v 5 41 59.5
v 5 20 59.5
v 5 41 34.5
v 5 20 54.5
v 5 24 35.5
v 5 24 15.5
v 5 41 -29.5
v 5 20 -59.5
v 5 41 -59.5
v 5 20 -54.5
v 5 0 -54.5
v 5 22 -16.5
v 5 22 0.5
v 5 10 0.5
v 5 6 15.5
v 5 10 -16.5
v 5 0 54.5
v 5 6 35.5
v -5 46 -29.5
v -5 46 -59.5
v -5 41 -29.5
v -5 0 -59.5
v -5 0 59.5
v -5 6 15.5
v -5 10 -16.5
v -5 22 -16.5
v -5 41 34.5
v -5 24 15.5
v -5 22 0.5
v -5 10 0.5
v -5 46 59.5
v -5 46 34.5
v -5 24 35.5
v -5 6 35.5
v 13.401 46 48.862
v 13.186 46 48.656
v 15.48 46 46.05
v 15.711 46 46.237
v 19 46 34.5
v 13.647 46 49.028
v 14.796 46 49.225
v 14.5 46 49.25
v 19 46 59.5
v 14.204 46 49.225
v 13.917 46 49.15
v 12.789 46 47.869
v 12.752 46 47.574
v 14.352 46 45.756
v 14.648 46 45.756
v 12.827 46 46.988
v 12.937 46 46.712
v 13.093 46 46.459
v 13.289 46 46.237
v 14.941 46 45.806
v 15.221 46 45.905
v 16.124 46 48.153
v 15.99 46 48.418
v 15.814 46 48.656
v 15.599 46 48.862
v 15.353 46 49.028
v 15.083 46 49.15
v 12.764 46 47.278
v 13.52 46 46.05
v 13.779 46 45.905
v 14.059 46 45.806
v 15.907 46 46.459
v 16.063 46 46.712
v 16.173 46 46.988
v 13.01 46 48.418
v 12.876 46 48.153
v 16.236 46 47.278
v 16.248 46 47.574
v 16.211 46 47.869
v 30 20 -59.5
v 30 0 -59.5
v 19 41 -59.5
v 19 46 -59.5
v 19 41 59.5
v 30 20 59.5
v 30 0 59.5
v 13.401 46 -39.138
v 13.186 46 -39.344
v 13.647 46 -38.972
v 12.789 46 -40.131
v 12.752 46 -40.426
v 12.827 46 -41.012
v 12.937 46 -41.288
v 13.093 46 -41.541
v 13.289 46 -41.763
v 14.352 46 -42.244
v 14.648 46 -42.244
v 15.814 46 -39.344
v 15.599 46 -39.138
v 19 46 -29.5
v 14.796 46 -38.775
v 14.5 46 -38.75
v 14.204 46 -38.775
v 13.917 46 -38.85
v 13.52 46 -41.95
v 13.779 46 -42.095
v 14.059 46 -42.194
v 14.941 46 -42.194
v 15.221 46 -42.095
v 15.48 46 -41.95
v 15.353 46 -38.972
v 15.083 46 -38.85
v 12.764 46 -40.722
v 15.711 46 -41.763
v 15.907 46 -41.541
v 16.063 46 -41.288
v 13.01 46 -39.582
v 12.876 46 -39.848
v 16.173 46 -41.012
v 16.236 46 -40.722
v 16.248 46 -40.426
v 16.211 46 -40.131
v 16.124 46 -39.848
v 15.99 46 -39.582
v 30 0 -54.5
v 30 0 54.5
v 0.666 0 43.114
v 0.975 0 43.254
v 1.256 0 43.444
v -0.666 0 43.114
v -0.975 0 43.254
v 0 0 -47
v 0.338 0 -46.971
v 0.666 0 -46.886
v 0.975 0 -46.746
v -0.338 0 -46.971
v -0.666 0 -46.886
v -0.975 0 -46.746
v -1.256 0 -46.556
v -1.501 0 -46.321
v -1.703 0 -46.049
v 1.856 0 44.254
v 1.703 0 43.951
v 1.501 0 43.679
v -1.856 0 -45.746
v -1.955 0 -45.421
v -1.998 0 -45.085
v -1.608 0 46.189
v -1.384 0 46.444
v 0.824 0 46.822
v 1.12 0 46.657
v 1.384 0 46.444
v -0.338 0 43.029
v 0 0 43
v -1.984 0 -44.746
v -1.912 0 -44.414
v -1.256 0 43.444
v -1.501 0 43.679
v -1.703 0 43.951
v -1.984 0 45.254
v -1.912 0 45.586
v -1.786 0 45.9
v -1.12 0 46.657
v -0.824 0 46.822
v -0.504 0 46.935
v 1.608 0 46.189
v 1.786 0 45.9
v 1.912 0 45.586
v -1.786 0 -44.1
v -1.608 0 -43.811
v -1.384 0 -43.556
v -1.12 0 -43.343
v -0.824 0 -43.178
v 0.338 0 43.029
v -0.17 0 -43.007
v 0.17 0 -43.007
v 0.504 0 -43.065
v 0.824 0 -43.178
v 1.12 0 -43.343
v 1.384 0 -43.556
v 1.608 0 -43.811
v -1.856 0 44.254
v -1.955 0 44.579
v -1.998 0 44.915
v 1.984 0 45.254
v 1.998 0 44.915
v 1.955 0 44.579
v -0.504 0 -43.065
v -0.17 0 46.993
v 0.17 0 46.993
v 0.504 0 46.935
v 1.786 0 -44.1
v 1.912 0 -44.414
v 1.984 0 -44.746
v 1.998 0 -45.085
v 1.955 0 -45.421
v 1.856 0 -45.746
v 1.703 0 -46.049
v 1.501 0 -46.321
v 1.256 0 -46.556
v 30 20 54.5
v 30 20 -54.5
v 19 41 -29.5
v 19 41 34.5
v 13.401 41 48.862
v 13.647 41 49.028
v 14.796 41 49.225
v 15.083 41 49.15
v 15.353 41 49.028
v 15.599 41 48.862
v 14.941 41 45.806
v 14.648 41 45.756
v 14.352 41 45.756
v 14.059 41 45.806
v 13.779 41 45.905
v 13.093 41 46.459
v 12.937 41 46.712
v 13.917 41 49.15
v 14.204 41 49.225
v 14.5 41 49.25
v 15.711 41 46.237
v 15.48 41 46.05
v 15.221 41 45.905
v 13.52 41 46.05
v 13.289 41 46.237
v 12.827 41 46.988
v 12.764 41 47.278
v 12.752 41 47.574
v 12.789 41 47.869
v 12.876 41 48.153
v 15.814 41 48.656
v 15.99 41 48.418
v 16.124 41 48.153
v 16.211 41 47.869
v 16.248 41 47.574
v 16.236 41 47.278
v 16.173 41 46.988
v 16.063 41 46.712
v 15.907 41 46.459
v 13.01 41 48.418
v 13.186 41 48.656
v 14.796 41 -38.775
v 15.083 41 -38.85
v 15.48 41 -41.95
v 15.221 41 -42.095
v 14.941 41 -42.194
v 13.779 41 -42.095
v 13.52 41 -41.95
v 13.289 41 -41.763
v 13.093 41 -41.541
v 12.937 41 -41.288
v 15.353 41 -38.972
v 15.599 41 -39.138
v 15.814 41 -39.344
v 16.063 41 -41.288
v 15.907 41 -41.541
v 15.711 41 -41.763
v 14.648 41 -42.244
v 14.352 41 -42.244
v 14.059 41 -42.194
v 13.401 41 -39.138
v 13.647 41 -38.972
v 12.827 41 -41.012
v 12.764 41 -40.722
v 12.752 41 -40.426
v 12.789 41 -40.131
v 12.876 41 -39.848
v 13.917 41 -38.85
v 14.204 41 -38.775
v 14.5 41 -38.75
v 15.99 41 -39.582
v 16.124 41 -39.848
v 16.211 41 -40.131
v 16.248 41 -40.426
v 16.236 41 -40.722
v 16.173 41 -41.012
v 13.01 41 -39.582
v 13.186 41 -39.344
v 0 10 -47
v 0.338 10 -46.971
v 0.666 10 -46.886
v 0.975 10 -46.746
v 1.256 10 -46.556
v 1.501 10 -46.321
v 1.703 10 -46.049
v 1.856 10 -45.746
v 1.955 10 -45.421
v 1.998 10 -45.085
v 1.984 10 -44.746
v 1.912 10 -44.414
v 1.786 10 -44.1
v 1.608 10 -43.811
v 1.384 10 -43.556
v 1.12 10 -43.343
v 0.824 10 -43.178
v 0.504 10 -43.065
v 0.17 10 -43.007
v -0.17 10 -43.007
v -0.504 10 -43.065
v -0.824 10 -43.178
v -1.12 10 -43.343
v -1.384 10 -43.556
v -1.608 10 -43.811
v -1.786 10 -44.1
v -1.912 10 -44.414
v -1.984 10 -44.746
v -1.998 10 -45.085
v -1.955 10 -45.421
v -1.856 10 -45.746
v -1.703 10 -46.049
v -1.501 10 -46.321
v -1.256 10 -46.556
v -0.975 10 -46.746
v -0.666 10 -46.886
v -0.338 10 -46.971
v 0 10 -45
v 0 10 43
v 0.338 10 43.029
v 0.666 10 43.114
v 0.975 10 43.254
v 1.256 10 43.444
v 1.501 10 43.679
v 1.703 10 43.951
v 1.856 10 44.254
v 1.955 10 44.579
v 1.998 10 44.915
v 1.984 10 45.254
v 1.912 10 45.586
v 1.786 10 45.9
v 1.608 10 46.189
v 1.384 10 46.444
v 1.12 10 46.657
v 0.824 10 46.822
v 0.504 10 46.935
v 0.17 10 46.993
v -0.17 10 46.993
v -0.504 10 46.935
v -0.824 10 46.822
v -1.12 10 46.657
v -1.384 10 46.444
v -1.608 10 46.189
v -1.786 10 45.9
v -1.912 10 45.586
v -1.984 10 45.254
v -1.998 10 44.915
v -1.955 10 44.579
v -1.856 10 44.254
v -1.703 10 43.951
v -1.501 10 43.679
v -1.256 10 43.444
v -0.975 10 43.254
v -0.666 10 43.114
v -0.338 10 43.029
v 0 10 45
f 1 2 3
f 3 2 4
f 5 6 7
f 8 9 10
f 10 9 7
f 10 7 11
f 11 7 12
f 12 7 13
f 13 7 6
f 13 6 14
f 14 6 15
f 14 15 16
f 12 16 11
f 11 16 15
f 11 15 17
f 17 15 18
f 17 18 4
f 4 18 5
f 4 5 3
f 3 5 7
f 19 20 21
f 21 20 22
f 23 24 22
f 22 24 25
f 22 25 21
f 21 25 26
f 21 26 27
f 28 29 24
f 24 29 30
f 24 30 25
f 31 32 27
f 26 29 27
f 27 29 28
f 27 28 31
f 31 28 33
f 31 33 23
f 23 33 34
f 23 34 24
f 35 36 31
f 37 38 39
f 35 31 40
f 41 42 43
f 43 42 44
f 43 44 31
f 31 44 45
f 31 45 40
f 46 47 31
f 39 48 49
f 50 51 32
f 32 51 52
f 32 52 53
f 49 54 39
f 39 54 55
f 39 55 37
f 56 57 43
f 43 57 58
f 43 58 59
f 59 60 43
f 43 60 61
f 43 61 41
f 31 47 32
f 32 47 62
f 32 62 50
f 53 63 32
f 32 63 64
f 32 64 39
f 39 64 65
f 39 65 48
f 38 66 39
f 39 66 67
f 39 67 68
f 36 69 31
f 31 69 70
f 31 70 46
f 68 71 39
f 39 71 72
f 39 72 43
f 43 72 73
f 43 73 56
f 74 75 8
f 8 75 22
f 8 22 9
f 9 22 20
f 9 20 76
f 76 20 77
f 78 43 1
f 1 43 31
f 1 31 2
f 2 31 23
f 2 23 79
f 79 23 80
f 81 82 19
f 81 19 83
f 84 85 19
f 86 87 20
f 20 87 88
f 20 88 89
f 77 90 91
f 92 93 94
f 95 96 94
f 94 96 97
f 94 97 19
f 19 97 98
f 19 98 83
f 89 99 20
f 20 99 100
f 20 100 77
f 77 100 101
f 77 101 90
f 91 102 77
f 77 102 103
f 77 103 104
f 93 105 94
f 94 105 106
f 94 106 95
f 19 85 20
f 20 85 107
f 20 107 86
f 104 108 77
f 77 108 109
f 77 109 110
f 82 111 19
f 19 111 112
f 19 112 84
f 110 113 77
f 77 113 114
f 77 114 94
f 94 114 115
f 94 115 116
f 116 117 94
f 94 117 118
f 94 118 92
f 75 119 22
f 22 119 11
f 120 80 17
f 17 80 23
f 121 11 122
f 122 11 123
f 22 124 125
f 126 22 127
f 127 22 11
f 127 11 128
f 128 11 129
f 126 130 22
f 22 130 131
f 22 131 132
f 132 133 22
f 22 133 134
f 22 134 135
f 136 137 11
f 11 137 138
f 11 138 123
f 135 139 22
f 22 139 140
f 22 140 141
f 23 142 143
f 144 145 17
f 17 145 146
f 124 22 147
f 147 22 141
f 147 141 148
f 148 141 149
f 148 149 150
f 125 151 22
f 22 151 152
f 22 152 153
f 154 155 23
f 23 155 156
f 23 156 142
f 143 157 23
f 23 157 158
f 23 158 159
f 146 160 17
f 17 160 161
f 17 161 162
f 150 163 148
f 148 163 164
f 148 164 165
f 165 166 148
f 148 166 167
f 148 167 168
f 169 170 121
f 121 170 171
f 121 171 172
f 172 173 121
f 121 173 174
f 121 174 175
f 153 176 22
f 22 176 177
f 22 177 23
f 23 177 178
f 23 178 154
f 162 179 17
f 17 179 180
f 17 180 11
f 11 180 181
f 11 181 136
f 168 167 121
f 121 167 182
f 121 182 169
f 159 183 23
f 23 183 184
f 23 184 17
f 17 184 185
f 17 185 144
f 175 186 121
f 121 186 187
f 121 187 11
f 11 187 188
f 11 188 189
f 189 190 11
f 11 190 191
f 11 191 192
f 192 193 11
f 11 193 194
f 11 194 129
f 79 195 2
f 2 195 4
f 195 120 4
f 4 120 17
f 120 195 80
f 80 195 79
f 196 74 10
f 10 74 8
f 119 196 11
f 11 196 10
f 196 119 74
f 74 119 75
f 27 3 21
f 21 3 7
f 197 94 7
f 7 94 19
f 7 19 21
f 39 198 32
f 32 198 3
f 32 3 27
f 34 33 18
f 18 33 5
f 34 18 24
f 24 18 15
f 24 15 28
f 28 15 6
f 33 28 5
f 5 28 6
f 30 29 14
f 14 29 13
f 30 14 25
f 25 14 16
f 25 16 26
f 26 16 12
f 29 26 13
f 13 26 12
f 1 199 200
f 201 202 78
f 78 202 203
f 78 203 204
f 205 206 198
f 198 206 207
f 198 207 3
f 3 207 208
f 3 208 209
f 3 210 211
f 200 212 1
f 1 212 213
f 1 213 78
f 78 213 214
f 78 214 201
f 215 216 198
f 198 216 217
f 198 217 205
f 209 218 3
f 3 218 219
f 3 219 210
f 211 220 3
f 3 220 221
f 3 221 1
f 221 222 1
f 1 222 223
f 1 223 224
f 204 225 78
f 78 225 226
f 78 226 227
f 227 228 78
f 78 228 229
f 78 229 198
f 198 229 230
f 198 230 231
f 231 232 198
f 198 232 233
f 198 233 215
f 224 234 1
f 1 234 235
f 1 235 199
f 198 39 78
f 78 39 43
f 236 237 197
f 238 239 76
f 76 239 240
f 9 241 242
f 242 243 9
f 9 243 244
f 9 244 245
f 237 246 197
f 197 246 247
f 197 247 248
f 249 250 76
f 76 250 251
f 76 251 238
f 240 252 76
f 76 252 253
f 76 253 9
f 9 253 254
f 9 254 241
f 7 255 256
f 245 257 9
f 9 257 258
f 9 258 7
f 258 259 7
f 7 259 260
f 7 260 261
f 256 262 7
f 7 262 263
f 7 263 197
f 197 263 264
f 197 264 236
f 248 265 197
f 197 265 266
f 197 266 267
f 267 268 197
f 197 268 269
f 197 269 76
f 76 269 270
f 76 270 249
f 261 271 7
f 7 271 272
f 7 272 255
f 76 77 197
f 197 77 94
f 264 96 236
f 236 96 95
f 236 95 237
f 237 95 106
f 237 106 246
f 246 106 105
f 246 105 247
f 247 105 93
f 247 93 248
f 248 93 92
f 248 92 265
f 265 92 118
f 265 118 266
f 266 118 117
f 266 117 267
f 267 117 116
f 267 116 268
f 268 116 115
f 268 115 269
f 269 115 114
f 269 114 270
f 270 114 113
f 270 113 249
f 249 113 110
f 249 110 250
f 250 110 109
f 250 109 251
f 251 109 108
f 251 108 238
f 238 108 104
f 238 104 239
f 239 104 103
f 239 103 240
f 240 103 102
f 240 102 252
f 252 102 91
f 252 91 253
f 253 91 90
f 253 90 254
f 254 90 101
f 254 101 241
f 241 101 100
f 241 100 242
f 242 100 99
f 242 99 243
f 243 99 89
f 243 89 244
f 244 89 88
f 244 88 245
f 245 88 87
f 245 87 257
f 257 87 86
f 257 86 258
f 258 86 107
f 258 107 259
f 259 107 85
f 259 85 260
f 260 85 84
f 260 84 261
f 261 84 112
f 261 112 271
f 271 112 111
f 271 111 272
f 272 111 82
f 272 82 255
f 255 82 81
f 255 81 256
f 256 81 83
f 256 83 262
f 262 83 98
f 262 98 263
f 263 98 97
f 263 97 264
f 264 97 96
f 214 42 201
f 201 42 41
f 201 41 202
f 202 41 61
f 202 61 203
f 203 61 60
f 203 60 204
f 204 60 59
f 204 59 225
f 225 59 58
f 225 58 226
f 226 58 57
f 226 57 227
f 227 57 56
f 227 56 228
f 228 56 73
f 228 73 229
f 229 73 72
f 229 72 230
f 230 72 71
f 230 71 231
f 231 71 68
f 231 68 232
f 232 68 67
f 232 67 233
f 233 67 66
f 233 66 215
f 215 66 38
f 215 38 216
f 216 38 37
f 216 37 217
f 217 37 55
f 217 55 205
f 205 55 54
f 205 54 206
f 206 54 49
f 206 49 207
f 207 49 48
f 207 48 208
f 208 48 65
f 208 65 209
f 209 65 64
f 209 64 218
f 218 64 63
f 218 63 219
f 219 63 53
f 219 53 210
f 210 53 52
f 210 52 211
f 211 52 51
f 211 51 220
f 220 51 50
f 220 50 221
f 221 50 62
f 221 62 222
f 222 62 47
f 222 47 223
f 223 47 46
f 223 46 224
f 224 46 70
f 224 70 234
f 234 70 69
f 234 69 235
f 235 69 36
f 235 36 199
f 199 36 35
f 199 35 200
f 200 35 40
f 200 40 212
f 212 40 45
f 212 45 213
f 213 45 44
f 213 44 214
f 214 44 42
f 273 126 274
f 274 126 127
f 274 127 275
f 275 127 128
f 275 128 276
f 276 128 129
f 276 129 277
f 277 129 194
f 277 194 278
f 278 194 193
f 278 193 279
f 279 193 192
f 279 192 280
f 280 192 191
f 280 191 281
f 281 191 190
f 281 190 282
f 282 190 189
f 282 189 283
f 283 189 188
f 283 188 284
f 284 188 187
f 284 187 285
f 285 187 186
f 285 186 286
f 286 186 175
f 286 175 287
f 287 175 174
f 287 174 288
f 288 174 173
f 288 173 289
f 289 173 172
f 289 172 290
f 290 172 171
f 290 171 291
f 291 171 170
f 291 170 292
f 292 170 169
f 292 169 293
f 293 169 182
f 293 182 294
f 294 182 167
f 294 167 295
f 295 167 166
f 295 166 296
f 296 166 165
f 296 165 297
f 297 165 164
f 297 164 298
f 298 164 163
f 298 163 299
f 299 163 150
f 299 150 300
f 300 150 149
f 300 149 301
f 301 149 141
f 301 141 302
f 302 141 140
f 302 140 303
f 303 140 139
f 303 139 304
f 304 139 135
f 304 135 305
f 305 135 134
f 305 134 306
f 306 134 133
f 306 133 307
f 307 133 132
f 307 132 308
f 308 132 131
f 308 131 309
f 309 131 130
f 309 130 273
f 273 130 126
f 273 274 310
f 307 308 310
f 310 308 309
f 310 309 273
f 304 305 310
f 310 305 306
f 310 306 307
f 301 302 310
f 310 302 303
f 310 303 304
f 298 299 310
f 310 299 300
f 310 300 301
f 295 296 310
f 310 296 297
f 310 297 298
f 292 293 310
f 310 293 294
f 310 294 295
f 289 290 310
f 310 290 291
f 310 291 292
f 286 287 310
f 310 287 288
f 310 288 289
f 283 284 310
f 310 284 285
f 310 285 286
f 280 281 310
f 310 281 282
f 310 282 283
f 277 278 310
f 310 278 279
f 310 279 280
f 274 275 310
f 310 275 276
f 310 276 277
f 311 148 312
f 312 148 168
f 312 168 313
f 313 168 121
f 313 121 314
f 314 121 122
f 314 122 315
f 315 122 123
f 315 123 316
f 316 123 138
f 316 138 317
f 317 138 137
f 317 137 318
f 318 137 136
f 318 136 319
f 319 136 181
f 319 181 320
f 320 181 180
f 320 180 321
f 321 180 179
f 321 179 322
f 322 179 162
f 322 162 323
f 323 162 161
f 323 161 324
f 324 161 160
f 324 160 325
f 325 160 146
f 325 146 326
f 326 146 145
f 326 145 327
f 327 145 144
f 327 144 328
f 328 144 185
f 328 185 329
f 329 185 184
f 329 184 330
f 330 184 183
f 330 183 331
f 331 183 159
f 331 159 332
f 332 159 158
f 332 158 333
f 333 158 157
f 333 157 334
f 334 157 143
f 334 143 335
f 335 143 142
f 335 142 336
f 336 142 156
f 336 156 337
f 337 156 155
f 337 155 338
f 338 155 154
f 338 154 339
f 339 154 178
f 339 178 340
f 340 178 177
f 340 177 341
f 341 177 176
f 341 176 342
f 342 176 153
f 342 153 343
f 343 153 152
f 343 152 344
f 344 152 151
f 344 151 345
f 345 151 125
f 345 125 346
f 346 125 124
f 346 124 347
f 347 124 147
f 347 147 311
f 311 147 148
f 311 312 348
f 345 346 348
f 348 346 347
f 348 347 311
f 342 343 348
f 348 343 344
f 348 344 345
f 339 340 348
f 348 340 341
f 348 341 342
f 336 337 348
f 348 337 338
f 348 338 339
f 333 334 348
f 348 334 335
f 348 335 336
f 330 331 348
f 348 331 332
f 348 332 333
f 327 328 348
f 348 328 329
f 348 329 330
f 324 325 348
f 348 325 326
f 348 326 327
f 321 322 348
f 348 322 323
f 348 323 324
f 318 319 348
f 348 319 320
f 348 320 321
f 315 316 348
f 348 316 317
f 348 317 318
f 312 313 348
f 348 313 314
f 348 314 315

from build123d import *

# Parameters (mm, degrees)
SKETCH1_W      = 10
SKETCH1_H      = 119
EXTRUDE1_DEPTH = 46
SKETCH2_W      = 5
SKETCH2_H      = 20
EXTRUDE2_DEPTH = 35
SKETCH3_W      = 64
SKETCH3_H      = 5
SKETCH3_W_2    = 17
SKETCH3_H_2    = 12
SKETCH3_W_3    = 20
SKETCH3_H_3    = 18
EXTRUDE3_DEPTH = 30
SKETCH4_W      = 25
SKETCH4_H      = 5
SKETCH4_W_2    = 30
EXTRUDE4_DEPTH = 14
SKETCH5_R      = 1.75
EXTRUDE5_DEPTH = 5
SKETCH7_R      = 2
EXTRUDE6_DEPTH = 10


with BuildPart() as part:
    # Sketch1 → Extrude1 (new body)
    with BuildSketch(Plane(origin=(0, 0, 0), x_dir=(1, 0, 0), z_dir=(0, 1, 0))):
        Rectangle(SKETCH1_W, SKETCH1_H)
    extrude(amount=EXTRUDE1_DEPTH)

    # Sketch2 → Extrude2 (add)
    with BuildSketch(Plane.ZY.offset(5)):
        with Locations((-57, 10)):
            Rectangle(SKETCH2_W, SKETCH2_H)
        with Locations((57, 10)):
            Rectangle(SKETCH2_W, SKETCH2_H)
    extrude(amount=-EXTRUDE2_DEPTH)

    # Sketch3 → Extrude3 (cut)
    with BuildSketch(Plane.ZY.offset(5)):
        with Locations((2.5, 43.5)):
            Rectangle(SKETCH3_W, SKETCH3_H)
        with Locations((-8, 16)):
            Rectangle(SKETCH3_W_2, SKETCH3_H_2)
        with Locations((25.5, 15)):
            Rectangle(SKETCH3_W_3, SKETCH3_H_3)
    extrude(amount=-EXTRUDE3_DEPTH, mode=Mode.SUBTRACT)

    # Sketch4 → Extrude4 (add)
    with BuildSketch(Plane(origin=(5, 0, 0), x_dir=(0, 0, -1), z_dir=(1, 0, 0))):
        with Locations((-47, 43.5)):
            Rectangle(SKETCH4_W, SKETCH4_H)
        with Locations((44.5, 43.5)):
            Rectangle(SKETCH4_W_2, SKETCH4_H)
    extrude(amount=EXTRUDE4_DEPTH)

    # Sketch5 → Extrude5 (cut)
    with BuildSketch(Plane(origin=(0, 46, 0), x_dir=(1, 0, 0), z_dir=(0, 1, 0))):
        with Locations(Location((14.5, -47.5, 0), (0, 0, 270))):
            Circle(SKETCH5_R)
        with Locations(Location((14.5, 40.5, 0), (0, 0, 270))):
            Circle(SKETCH5_R)
    extrude(amount=-EXTRUDE5_DEPTH, mode=Mode.SUBTRACT)

    # Sketch7 → Extrude6 (cut)
    with BuildSketch(Plane.XZ):
        with Locations(Location((0, 45, 0), (0, 0, 270))):
            Circle(SKETCH7_R)
        with Locations(Location((0, -45, 0), (0, 0, 270))):
            Circle(SKETCH7_R)
    extrude(amount=-EXTRUDE6_DEPTH, mode=Mode.SUBTRACT)


solid = part.part
